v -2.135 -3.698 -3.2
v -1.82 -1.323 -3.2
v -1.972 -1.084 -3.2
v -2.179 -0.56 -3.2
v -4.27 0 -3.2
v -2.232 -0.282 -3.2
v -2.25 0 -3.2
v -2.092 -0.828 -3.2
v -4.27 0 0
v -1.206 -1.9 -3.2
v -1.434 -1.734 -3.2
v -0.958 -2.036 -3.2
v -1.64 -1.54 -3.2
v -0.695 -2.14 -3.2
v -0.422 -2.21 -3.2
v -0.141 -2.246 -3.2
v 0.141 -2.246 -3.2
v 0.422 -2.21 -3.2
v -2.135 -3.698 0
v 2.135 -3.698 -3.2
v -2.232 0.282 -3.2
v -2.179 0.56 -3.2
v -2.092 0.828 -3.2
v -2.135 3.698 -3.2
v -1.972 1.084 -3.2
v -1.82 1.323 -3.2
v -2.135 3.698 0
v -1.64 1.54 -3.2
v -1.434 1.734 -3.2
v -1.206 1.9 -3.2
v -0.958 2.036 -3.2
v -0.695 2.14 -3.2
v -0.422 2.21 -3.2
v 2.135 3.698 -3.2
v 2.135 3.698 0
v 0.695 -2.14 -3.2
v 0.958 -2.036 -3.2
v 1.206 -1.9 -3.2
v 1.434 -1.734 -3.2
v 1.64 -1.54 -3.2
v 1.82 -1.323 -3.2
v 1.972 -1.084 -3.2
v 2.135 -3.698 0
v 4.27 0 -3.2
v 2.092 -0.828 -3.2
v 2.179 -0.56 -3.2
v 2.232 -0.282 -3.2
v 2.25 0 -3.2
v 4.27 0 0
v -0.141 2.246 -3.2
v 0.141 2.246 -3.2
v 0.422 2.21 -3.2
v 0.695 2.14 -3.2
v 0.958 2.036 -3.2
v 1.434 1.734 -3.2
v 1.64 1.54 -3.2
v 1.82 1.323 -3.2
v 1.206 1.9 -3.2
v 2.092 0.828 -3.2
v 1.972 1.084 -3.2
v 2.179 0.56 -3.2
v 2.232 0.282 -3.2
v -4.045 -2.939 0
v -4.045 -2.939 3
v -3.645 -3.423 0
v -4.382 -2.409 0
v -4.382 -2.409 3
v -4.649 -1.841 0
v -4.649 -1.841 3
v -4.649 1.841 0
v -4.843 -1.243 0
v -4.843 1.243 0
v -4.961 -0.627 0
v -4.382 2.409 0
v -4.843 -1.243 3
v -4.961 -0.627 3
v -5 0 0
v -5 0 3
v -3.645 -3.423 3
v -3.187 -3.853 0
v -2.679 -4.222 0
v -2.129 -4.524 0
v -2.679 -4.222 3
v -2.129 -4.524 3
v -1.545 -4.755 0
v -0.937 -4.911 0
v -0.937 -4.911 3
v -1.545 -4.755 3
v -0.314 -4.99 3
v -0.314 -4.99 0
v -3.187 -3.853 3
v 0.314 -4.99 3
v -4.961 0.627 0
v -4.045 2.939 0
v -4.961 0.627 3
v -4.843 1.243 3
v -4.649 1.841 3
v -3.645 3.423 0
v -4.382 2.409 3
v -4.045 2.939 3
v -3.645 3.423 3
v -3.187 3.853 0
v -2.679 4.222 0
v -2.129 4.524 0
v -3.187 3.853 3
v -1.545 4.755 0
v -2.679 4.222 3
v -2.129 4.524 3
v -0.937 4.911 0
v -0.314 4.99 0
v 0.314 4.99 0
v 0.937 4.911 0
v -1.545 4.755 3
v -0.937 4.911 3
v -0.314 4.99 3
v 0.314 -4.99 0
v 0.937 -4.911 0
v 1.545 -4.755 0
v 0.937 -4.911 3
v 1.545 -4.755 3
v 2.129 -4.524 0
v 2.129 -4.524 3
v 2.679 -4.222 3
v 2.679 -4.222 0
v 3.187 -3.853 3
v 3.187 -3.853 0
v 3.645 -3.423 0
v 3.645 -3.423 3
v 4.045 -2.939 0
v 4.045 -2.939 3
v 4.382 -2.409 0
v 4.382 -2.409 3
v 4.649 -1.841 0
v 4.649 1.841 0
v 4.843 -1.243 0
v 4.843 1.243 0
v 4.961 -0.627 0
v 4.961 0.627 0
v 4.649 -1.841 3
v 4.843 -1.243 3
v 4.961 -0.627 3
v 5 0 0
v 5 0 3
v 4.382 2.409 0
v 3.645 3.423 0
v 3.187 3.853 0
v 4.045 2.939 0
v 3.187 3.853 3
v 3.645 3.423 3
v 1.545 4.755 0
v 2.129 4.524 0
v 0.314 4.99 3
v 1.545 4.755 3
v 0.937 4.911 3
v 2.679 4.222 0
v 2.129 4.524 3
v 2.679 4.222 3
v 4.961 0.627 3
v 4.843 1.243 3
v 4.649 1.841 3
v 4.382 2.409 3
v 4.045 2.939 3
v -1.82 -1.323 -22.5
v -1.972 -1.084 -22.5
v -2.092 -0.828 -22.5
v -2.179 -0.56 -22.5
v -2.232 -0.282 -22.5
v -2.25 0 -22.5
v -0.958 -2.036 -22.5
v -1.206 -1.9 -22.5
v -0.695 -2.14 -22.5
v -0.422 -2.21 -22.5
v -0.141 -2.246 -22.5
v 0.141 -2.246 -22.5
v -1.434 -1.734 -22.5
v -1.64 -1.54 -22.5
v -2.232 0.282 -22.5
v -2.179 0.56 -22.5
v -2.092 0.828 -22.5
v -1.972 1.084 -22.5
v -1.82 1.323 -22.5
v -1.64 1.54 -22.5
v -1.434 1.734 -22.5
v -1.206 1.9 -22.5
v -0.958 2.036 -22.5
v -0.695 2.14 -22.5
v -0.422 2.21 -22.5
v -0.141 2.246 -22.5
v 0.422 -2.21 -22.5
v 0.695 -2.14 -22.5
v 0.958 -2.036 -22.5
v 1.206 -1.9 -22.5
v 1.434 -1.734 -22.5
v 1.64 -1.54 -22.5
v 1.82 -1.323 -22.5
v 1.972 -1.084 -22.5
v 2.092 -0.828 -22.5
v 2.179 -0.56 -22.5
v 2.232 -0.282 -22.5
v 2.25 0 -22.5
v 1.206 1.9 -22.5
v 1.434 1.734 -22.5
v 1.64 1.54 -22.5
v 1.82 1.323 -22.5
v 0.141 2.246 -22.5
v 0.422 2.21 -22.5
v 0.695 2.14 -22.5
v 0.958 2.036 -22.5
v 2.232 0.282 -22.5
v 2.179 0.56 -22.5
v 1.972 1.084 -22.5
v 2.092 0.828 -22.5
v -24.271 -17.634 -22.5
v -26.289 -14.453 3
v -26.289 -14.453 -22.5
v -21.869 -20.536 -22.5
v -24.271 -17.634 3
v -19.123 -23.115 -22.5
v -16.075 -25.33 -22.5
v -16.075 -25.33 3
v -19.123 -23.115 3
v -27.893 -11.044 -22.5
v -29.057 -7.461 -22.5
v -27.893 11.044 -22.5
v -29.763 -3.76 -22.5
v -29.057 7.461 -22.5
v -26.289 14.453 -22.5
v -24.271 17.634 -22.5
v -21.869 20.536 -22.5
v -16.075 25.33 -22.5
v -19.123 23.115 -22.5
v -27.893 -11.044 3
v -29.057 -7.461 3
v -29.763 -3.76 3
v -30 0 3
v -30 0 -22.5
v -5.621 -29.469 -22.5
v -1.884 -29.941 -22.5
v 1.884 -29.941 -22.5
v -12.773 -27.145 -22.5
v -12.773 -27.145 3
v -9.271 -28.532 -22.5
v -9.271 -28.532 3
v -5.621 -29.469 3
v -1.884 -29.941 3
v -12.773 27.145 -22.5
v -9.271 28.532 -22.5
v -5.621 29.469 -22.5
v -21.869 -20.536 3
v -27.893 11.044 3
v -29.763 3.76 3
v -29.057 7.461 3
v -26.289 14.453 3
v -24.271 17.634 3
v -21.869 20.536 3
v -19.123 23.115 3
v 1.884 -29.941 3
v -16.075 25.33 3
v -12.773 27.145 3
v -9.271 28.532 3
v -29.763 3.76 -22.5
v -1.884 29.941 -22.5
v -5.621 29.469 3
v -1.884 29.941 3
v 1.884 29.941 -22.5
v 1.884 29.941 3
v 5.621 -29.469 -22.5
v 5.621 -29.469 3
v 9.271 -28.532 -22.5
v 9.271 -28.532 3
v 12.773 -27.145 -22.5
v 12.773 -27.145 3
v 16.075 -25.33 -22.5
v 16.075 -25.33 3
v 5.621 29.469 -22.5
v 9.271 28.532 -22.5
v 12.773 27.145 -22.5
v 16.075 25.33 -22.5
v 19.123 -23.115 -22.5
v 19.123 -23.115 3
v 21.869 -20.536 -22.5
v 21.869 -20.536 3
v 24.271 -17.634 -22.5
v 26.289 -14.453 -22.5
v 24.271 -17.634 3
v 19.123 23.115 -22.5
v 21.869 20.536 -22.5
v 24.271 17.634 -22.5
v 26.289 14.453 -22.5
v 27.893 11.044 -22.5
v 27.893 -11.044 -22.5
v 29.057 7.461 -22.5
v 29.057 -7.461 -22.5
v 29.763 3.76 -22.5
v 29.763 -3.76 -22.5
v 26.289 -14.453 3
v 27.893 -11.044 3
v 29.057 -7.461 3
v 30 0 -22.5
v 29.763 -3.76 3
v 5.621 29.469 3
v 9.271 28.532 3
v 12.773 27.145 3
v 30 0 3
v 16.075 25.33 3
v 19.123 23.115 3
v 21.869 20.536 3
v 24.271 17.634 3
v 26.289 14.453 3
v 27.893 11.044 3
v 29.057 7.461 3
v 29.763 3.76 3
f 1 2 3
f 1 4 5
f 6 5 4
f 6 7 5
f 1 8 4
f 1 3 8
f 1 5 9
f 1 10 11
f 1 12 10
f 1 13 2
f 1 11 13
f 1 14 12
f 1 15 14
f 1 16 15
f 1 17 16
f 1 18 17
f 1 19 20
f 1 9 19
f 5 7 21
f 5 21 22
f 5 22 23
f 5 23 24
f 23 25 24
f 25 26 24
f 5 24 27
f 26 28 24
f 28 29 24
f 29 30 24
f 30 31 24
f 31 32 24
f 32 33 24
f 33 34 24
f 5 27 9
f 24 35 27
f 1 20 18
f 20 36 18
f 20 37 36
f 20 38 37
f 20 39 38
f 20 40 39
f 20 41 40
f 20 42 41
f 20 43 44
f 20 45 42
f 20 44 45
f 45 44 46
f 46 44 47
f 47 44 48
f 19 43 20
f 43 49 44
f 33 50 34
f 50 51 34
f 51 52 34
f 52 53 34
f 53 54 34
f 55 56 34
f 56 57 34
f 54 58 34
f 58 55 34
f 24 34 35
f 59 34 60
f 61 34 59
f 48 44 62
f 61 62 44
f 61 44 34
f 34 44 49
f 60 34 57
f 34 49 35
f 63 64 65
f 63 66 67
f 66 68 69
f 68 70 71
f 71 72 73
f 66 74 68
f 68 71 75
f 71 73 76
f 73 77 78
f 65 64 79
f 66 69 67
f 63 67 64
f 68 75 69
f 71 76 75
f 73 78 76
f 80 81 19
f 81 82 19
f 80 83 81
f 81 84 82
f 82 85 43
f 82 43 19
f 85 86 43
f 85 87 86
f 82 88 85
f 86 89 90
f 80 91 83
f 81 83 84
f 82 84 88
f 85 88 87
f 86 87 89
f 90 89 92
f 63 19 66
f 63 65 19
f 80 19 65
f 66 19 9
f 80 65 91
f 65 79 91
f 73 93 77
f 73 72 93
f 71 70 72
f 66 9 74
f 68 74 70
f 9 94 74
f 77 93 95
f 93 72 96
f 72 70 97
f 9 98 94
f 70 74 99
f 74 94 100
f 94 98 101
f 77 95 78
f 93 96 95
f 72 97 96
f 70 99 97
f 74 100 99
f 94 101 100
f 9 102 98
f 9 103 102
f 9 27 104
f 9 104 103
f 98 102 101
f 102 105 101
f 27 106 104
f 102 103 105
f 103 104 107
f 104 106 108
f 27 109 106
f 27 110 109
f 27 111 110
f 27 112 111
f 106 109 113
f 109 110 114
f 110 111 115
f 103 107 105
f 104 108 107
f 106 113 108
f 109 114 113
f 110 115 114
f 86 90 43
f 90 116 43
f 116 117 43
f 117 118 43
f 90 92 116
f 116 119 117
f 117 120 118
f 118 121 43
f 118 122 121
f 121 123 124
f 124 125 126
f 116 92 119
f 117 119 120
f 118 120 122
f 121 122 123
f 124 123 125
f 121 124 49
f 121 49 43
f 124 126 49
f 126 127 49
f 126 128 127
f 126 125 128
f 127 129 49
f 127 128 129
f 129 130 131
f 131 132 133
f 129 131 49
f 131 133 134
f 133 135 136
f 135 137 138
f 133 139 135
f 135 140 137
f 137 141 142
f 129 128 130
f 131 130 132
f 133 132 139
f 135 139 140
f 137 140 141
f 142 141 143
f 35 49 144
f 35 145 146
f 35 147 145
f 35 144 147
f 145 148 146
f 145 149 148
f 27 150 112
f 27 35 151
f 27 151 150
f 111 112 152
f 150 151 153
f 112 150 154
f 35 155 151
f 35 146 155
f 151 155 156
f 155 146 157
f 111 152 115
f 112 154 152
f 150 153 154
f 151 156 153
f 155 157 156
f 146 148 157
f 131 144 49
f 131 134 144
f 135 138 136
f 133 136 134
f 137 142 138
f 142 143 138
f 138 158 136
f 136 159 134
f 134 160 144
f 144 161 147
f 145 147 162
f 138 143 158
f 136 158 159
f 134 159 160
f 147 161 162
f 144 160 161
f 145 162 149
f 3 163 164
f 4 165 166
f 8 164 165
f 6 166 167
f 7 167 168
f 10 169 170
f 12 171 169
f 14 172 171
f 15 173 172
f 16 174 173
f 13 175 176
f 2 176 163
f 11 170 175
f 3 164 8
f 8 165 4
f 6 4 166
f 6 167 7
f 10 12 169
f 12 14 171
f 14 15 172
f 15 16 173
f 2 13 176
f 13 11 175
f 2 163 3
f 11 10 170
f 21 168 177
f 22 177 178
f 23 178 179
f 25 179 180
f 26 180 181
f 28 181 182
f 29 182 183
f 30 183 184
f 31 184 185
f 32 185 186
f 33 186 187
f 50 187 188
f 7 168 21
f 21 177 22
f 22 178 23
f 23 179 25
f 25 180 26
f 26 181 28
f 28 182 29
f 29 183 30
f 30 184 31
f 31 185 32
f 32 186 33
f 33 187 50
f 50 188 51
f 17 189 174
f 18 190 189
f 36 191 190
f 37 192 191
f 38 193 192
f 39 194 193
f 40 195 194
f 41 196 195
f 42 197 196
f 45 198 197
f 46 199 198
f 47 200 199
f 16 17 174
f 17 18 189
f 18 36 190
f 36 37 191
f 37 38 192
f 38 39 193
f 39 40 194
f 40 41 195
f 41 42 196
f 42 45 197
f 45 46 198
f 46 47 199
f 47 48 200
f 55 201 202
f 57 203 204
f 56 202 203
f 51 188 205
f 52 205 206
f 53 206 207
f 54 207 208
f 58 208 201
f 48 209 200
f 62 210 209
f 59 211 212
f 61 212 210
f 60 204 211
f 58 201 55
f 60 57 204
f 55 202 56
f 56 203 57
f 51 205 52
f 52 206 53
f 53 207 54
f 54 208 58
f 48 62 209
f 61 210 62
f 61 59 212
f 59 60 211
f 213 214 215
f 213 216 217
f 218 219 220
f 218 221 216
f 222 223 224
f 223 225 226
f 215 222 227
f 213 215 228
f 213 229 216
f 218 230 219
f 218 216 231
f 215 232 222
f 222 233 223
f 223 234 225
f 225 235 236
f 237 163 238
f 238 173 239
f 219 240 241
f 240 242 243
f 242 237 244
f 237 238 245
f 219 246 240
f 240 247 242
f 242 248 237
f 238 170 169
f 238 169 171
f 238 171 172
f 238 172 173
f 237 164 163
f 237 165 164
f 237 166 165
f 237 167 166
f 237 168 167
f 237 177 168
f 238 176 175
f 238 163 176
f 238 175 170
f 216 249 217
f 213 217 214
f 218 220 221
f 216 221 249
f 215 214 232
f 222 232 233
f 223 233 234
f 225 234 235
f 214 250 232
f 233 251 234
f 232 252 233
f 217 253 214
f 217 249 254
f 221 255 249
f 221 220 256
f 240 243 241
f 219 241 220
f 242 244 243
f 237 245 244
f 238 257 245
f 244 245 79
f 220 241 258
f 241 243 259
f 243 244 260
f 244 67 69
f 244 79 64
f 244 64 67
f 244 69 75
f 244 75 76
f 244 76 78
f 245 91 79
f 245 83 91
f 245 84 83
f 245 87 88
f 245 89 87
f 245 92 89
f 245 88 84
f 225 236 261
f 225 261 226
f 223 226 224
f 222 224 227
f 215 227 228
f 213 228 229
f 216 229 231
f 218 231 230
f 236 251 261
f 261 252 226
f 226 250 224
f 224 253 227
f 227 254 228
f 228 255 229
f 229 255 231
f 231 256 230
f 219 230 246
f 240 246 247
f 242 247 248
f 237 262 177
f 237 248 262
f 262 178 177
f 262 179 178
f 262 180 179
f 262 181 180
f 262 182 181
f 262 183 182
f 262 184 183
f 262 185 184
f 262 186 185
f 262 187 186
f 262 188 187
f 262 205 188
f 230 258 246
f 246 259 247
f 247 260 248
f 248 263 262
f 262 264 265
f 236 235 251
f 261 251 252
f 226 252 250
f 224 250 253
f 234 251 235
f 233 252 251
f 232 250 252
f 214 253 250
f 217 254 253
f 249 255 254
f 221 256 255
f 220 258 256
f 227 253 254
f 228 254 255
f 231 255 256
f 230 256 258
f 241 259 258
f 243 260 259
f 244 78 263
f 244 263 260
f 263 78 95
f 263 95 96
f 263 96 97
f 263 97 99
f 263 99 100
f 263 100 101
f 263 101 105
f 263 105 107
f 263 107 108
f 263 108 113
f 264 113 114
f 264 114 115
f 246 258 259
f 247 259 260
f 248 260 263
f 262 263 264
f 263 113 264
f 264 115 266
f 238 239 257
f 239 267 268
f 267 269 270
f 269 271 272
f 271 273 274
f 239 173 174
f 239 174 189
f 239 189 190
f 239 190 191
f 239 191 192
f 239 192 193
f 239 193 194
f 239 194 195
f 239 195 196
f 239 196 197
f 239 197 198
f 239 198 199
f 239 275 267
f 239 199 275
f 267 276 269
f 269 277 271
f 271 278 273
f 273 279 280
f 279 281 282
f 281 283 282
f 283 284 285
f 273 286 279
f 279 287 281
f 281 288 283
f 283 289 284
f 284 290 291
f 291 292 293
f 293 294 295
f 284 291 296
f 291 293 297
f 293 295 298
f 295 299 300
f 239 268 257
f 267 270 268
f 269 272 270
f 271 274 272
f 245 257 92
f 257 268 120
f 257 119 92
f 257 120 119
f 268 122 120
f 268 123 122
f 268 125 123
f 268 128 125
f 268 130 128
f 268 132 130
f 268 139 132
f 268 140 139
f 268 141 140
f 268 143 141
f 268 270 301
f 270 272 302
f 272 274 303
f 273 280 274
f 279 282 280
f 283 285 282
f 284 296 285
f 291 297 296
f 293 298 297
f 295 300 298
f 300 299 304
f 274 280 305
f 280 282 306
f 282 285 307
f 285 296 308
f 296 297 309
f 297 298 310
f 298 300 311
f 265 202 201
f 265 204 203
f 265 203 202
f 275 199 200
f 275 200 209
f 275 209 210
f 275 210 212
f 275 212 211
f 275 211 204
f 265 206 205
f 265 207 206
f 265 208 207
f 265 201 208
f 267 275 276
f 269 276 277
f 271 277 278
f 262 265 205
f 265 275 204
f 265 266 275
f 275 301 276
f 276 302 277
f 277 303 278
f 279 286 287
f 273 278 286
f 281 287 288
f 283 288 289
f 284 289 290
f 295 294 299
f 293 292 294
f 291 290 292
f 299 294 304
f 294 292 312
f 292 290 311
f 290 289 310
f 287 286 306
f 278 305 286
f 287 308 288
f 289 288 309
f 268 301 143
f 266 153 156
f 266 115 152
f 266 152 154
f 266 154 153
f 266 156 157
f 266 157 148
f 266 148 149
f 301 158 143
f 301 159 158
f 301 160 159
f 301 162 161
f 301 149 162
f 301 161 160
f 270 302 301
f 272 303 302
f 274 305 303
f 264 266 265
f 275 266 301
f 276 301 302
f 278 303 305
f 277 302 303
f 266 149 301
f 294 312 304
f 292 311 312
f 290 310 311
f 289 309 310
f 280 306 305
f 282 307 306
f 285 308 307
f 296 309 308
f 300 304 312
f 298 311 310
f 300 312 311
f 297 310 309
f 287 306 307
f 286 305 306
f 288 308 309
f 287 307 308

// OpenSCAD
$fn = 50;


difference() {
	union() {
		translate(v = [0, 0, -22.5000000000]) {
			cylinder(h = 25.5000000000, r = 30.0000000000);
		}
	}
	union() {
		translate(v = [0, 0, 0]) {
			rotate(a = [0, 0, 0]) {
				difference() {
					union() {
						translate(v = [0, 0, -3.2000000000]) {
							linear_extrude(height = 3.2000000000) {
								polygon(points = [[4.2698000000, 0.0000000000], [2.1349000000, 3.6977552691], [-2.1349000000, 3.6977552691], [-4.2698000000, 0.0000000000], [-2.1349000000, -3.6977552691], [2.1349000000, -3.6977552691]]);
							}
						}
					}
					union();
				}
			}
		}
		#cylinder(h = 3, r = 5.0000000000);
		#translate(v = [0, 0, -100.0000000000]) {
			cylinder(h = 200, r = 2.2500000000);
		}
	}
}
